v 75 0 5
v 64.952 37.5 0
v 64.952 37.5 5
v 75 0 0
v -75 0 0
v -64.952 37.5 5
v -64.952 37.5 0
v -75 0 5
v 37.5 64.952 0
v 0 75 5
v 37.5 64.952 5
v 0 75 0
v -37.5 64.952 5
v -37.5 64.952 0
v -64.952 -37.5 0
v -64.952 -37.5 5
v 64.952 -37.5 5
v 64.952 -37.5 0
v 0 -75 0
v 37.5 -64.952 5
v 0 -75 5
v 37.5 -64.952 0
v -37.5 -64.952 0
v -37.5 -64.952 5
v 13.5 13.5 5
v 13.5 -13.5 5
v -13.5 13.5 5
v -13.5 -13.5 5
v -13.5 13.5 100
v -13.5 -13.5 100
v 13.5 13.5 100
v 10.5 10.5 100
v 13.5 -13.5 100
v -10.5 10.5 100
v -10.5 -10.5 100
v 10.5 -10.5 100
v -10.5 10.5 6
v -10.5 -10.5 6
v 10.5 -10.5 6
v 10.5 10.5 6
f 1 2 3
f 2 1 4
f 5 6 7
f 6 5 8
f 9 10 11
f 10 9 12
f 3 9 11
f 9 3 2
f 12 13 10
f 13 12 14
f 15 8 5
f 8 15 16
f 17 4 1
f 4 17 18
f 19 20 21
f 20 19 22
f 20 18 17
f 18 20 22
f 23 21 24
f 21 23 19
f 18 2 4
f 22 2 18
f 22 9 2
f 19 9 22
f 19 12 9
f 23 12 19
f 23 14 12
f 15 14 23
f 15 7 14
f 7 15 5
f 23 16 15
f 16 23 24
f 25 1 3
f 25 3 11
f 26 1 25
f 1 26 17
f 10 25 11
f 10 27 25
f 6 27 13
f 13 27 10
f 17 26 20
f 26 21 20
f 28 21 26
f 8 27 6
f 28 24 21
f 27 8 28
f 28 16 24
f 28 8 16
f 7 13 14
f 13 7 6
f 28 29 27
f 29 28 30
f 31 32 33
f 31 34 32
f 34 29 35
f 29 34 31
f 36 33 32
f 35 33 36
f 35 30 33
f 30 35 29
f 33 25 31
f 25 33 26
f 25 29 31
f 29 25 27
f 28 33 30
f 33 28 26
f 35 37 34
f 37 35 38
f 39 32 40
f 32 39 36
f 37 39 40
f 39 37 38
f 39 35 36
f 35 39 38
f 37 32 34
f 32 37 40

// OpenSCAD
tubeWidth = 21;
border = 3;
height = 100;

difference() {
    center1 = -(tubeWidth + border * 2) / 2;
    center2 = -(tubeWidth) / 2;
    union() {
        cylinder(r1=75, r2=75, h=5, $fn=12);
        translate([center1, center1, 0])
        cube([tubeWidth + border * 2, tubeWidth + border * 2, height]);
    }
        
    translate([center2, center2, border * 2])
    cube([tubeWidth, tubeWidth, 2 * height]);    
}
